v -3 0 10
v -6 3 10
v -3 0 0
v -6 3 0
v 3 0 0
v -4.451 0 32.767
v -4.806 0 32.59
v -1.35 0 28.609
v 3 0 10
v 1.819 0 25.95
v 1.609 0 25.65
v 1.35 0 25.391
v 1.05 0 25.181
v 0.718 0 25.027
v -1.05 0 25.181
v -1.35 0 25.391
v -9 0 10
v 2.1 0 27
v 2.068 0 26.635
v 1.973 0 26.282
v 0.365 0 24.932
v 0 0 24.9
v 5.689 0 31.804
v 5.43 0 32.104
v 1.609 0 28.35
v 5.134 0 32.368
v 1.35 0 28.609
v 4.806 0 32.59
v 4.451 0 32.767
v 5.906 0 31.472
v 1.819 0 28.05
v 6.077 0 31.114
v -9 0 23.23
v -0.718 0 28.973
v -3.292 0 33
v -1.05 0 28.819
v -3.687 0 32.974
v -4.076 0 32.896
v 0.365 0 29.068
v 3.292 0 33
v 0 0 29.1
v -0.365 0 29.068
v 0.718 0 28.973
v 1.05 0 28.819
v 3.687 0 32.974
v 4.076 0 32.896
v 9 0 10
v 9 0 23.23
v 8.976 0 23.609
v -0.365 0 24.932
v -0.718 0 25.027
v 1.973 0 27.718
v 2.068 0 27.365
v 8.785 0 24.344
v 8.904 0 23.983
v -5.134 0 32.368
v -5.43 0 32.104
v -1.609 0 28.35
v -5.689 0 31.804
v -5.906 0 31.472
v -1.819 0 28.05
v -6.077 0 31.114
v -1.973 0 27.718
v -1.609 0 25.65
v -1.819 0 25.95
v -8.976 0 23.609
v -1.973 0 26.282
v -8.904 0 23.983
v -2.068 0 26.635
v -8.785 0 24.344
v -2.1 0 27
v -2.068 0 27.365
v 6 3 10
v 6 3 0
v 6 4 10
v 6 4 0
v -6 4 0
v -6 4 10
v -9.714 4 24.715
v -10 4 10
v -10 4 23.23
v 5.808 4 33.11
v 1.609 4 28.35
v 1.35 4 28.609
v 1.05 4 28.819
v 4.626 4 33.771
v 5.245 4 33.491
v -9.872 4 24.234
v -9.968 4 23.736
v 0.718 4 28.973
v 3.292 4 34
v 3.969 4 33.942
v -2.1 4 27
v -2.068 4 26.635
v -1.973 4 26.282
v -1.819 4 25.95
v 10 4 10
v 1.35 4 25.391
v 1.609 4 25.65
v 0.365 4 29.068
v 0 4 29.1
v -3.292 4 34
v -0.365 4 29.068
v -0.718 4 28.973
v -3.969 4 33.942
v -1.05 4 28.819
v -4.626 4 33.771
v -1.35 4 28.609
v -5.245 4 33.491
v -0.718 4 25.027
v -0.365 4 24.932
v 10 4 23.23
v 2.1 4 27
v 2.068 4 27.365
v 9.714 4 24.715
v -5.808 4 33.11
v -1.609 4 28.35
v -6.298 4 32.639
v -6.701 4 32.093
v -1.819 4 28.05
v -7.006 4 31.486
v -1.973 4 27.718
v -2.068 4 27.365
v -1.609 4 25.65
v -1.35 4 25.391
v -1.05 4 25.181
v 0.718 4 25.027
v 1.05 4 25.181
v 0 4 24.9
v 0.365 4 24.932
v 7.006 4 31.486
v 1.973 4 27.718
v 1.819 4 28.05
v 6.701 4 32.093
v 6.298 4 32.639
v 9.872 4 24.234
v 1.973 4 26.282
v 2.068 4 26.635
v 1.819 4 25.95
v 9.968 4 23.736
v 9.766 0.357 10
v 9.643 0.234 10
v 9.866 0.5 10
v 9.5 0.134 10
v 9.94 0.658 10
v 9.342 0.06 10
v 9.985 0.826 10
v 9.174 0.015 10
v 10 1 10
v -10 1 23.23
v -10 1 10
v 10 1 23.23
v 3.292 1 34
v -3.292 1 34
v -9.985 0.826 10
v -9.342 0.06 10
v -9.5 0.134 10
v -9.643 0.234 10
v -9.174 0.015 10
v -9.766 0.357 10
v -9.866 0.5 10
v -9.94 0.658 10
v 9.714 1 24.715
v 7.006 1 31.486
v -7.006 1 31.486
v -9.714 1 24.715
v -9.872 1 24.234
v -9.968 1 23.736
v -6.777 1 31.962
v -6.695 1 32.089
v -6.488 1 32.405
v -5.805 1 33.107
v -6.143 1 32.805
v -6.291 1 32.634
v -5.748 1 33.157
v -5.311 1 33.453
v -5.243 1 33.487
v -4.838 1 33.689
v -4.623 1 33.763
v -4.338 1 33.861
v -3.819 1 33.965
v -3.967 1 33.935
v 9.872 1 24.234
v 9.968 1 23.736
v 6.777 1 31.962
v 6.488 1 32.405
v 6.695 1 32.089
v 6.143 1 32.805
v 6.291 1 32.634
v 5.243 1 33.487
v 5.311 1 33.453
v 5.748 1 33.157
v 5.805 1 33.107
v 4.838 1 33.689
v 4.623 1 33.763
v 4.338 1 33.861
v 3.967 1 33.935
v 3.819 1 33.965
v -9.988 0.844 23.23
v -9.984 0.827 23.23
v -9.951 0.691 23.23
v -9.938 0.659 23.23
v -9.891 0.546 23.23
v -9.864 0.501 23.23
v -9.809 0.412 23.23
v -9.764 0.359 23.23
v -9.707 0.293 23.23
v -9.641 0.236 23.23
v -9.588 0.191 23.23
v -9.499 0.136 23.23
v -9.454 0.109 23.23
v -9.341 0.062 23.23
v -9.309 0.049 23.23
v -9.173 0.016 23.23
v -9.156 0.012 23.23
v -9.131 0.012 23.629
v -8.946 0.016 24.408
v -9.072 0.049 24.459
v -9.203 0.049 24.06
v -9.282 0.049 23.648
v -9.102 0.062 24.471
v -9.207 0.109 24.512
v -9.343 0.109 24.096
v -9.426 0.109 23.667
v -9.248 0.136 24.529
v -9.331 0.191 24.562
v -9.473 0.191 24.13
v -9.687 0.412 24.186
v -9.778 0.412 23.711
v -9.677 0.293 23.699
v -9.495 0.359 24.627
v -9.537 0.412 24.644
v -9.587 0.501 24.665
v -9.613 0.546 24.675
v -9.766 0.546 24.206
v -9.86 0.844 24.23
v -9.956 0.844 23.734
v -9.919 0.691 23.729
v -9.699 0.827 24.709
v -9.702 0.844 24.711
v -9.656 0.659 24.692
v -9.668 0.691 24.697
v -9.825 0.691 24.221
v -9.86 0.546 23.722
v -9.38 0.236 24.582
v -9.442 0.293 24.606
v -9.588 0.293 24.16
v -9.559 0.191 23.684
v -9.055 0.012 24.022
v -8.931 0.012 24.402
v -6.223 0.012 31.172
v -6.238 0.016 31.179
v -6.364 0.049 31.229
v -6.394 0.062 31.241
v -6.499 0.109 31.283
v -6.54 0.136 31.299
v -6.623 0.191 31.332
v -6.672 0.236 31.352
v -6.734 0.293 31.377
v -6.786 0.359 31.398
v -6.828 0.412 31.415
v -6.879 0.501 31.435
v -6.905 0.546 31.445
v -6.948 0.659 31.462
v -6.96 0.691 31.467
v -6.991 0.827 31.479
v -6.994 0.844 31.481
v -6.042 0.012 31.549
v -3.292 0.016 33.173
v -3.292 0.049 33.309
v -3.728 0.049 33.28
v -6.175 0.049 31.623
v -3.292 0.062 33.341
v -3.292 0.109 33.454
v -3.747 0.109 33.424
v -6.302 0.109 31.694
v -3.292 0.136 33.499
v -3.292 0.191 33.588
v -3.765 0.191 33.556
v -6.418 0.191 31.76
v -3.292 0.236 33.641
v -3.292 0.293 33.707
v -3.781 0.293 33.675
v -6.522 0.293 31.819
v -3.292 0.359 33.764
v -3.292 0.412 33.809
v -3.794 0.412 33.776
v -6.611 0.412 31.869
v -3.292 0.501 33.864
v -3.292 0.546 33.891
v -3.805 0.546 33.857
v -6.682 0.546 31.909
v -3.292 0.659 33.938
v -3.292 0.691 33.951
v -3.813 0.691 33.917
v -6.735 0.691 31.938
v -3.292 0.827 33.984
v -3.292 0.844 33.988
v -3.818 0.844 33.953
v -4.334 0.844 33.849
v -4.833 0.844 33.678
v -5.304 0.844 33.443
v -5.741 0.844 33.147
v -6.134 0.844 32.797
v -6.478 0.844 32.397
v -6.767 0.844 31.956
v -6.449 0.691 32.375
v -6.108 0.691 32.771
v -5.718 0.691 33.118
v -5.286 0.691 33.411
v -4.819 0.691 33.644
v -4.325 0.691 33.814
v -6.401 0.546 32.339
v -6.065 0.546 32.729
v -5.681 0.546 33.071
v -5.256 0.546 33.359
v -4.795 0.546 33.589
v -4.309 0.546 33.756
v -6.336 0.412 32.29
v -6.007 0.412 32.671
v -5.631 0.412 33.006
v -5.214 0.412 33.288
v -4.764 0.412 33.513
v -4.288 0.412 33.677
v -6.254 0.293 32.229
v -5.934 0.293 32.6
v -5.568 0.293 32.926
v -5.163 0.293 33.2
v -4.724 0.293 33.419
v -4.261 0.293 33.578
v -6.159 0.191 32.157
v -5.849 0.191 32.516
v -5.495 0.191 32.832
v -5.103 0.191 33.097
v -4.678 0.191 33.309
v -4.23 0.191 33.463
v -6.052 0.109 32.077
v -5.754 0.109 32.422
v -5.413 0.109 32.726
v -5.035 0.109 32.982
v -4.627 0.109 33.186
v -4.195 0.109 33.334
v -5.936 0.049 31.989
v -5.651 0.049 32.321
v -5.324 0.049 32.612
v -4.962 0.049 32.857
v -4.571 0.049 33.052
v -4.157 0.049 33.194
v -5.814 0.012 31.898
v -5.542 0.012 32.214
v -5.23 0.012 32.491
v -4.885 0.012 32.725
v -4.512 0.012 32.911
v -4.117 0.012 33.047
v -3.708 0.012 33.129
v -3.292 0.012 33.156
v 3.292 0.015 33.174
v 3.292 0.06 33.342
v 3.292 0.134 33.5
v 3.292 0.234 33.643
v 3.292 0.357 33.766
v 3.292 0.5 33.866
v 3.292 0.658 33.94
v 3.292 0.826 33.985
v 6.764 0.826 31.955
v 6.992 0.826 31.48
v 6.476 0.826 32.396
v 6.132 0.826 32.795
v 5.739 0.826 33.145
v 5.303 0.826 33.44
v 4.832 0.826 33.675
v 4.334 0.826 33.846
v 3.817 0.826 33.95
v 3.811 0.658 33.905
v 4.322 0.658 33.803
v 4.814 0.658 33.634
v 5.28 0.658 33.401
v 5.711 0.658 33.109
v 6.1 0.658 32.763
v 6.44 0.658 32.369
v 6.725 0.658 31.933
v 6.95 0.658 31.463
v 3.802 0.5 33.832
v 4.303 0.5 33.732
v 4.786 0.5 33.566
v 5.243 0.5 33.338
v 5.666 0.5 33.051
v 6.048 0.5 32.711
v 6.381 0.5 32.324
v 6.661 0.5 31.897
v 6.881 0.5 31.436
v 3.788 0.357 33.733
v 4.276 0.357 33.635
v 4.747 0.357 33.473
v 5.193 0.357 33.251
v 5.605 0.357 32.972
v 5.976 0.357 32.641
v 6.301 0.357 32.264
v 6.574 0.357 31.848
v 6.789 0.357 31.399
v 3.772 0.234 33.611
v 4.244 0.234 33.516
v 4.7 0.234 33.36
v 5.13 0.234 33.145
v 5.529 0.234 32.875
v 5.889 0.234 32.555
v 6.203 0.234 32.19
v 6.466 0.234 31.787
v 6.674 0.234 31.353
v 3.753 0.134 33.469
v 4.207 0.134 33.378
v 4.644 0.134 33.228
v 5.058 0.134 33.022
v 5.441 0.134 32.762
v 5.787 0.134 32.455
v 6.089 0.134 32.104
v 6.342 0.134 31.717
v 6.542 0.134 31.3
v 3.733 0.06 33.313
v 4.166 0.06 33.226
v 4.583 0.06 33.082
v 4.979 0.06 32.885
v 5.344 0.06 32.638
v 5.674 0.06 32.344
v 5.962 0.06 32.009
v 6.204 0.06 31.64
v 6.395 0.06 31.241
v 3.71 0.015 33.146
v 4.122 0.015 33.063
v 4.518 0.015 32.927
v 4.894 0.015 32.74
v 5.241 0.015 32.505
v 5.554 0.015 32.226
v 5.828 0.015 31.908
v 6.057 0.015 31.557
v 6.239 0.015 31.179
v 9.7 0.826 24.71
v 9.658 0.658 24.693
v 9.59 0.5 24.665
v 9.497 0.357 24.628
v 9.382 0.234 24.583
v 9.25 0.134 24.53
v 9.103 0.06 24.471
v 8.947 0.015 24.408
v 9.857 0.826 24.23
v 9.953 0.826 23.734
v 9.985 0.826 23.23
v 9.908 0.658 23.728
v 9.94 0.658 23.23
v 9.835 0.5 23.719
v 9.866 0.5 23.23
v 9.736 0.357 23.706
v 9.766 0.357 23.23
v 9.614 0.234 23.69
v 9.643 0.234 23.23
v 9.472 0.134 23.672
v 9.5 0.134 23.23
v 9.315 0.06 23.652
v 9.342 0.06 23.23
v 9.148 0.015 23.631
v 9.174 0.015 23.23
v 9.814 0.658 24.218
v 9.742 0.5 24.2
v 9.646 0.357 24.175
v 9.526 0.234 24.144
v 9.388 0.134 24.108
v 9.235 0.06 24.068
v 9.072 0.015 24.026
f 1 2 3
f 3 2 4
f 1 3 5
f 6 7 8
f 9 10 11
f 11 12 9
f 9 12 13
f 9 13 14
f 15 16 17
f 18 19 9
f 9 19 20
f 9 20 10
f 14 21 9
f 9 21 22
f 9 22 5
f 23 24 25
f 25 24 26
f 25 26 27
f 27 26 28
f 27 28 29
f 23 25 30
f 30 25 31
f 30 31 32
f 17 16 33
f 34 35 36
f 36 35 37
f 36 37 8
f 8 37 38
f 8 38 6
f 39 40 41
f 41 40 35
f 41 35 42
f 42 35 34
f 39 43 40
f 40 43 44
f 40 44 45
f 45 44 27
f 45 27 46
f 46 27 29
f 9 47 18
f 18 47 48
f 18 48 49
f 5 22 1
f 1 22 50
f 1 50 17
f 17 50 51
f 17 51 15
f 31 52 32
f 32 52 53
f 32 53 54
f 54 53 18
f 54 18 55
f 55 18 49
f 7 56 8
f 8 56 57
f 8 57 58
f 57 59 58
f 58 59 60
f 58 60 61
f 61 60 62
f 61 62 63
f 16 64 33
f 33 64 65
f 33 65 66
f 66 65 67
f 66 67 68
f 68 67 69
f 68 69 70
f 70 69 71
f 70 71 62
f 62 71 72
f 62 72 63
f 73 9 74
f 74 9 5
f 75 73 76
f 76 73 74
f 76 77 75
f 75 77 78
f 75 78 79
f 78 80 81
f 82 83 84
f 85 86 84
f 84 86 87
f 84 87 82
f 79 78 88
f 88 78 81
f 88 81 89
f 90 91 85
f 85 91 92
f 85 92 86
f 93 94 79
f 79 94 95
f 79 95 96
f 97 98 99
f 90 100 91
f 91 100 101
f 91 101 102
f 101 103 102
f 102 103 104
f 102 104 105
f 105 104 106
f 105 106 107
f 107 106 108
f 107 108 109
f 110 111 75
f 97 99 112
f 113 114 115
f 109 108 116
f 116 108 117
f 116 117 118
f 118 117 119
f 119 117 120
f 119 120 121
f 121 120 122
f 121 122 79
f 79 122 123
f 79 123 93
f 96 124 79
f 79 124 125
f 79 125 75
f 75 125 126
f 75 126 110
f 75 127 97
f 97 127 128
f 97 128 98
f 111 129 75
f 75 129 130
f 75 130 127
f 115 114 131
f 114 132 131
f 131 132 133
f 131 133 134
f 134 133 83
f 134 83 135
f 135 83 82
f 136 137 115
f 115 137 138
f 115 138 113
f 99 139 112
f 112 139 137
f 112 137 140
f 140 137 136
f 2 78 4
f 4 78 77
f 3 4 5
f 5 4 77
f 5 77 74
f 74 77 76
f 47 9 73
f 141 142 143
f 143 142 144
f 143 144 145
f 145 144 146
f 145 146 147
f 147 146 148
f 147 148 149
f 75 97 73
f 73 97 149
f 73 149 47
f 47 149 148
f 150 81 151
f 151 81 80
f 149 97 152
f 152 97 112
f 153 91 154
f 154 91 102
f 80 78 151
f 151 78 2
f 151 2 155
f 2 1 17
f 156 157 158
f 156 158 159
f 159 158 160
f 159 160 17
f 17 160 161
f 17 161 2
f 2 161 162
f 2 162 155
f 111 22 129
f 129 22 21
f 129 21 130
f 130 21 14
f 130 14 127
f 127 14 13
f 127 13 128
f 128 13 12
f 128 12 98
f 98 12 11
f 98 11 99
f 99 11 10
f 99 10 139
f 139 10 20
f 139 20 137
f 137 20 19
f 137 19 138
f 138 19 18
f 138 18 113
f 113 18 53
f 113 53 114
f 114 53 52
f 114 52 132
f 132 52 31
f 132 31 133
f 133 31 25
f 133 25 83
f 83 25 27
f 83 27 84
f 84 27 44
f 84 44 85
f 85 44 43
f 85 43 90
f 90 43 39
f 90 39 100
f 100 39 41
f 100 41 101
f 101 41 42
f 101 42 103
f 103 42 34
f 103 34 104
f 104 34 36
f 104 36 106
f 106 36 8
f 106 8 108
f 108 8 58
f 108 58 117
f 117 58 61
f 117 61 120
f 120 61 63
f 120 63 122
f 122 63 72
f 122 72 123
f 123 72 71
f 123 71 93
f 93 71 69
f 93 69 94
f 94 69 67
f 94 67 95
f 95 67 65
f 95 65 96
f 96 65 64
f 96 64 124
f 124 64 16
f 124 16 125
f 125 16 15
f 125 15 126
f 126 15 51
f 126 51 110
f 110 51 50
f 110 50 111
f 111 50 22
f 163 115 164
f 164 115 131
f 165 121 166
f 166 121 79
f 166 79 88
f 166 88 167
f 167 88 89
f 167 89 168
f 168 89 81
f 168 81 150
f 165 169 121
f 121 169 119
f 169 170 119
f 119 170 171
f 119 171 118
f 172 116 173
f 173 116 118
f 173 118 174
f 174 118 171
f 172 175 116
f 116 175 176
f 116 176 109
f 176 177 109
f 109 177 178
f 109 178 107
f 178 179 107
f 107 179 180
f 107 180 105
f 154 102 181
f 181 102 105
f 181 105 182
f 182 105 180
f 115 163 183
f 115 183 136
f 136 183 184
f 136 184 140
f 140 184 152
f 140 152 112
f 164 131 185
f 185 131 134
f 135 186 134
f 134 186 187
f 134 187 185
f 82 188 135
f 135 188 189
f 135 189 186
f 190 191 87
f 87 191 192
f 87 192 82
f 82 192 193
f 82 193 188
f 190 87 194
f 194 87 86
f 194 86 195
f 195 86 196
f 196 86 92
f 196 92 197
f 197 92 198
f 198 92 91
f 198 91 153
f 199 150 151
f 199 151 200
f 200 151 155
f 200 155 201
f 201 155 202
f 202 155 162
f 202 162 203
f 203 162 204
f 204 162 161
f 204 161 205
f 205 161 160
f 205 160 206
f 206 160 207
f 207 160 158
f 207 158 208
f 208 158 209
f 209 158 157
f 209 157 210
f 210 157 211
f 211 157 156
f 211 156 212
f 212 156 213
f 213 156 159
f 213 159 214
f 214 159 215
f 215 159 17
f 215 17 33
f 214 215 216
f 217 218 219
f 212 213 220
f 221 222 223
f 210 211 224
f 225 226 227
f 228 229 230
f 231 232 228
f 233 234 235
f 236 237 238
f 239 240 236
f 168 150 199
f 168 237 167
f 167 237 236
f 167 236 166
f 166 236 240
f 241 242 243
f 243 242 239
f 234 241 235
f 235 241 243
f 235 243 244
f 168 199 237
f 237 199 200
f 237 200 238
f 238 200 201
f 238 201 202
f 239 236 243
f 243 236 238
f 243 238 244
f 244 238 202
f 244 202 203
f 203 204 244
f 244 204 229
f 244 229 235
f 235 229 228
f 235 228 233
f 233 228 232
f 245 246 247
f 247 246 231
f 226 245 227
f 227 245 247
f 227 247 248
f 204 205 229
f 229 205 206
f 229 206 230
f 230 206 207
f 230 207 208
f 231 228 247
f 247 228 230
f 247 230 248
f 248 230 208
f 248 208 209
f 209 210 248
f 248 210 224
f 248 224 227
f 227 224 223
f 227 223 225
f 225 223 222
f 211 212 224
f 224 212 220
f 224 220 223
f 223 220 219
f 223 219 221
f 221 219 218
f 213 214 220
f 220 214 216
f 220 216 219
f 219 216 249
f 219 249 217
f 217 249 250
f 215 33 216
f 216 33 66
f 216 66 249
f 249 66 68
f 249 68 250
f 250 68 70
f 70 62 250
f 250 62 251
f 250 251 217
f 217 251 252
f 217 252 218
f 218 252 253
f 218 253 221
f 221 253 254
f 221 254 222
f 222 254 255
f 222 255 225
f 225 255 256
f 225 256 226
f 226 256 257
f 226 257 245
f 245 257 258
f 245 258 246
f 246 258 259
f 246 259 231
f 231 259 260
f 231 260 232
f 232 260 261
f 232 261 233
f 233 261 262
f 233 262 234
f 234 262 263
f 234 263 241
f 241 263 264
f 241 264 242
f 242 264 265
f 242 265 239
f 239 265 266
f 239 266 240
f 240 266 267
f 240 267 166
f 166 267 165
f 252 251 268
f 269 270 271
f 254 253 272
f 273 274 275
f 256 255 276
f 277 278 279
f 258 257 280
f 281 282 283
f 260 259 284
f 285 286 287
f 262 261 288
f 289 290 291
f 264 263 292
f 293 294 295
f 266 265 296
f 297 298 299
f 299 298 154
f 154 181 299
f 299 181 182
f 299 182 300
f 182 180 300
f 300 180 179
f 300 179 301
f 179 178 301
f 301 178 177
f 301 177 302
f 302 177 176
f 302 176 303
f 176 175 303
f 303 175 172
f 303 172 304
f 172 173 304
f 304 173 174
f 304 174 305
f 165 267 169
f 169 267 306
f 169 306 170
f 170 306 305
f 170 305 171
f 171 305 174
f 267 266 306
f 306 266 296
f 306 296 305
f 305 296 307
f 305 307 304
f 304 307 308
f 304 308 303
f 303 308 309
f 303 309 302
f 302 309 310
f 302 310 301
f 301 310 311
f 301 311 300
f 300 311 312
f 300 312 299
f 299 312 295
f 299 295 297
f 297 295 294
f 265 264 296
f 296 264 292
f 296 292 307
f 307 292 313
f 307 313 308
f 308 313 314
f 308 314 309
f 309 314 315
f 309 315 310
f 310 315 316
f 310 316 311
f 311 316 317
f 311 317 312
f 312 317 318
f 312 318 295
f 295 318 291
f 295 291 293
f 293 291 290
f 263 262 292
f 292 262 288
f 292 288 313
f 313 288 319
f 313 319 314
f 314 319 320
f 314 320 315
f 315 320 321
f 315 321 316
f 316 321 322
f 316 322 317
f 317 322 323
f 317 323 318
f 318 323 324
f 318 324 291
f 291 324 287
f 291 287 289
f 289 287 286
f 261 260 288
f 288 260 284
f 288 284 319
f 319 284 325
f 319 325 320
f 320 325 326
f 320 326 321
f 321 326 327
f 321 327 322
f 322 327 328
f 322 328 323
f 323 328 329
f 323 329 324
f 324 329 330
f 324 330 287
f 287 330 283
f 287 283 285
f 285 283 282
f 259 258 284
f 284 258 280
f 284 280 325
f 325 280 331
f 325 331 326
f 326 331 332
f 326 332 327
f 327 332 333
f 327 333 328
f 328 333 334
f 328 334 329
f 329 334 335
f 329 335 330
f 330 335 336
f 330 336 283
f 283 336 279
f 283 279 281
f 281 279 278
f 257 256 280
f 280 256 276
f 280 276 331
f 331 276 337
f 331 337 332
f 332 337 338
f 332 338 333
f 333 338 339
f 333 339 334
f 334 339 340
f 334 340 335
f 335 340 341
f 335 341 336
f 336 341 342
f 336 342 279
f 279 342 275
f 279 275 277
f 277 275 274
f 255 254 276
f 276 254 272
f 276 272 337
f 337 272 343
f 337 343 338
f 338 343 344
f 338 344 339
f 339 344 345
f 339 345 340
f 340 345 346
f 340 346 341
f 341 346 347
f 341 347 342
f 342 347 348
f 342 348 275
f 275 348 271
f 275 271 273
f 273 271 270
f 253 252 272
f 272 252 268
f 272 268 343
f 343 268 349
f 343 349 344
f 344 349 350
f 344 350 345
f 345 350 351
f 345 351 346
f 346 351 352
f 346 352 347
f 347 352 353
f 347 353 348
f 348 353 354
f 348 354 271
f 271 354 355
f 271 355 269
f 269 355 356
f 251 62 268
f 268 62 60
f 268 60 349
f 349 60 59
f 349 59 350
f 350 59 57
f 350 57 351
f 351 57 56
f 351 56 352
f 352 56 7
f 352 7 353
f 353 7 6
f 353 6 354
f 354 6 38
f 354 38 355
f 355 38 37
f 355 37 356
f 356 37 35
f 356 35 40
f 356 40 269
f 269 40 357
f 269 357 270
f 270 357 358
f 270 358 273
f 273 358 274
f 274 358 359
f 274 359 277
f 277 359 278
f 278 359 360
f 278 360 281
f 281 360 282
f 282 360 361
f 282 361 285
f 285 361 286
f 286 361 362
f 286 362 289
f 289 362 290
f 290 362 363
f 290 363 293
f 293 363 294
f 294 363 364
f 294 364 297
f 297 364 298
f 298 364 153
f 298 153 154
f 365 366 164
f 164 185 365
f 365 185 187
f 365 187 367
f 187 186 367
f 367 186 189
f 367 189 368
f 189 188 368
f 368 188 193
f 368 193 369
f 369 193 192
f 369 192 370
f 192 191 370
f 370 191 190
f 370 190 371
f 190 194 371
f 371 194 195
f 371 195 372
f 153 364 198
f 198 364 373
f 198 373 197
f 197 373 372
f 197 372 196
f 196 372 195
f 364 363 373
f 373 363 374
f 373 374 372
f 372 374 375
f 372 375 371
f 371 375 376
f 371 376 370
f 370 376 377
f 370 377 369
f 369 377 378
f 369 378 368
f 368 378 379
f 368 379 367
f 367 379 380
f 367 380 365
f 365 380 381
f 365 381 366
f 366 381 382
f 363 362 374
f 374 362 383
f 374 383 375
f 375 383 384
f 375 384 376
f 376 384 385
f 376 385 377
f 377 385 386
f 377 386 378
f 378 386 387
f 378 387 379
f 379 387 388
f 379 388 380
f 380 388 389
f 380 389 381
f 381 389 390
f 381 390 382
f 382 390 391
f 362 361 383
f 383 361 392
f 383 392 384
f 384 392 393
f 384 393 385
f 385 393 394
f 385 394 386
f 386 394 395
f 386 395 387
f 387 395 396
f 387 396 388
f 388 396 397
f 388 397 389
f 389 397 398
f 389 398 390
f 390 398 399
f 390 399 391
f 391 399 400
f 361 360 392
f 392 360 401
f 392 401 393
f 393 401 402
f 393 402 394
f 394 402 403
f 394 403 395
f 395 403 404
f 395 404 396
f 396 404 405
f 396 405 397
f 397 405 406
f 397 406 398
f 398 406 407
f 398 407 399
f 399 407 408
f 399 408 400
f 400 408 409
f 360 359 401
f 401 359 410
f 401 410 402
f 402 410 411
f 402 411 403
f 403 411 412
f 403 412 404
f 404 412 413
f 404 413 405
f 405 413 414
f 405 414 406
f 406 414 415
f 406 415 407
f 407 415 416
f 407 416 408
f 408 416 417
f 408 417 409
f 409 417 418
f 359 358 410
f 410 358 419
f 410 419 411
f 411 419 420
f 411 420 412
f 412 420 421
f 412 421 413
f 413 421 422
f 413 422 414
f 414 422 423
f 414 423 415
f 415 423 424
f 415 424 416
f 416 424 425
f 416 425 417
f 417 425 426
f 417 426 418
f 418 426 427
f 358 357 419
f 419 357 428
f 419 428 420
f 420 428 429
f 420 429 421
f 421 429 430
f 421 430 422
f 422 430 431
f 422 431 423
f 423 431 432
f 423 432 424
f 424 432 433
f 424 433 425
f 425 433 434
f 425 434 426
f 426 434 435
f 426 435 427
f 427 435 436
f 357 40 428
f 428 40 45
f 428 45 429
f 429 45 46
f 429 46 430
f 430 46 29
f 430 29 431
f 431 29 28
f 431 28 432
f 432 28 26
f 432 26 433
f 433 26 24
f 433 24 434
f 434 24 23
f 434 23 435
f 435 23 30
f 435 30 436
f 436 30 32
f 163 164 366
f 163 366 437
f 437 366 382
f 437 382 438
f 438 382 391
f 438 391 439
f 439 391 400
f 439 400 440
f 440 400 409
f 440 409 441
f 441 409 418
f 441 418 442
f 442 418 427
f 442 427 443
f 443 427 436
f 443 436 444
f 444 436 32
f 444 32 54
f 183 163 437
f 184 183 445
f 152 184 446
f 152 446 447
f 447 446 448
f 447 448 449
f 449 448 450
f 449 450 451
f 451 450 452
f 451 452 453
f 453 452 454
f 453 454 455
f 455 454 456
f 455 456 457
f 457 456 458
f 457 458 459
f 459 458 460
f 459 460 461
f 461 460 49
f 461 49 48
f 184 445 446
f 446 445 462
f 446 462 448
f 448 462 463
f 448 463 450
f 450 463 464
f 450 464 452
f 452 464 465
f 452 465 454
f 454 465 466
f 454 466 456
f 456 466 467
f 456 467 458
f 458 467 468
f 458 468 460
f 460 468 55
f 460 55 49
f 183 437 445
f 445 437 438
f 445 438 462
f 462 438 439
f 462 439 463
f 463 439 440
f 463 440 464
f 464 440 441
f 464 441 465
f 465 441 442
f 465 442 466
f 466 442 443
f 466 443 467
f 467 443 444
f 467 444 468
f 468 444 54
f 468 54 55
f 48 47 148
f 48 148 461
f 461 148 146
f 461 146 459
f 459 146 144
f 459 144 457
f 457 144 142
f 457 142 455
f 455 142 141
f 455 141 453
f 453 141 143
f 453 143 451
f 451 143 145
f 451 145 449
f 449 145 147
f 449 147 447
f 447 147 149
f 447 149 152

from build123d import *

# Parameters (mm, degrees)
BOSS_EXTRU_1_DEPTH      = 10
ESQUISSE2_W             = 20
ESQUISSE2_H             = 4
BOSS_EXTRU_2_DEPTH      = 24
ESQUISSE3_R             = 2.1
ENL_V_MAT_EXTRU_1_DEPTH = 5
CHANFREIN1_SIZE         = 10
CHANFREIN1_SIZE2        = 4
CHANFREIN1_PART_2_SIZE  = 10
CHANFREIN1_PART_2_SIZE2 = 4
CONG_1_R                = 4
CONG_2_R                = 1


with BuildPart() as part:
    # Esquisse1 → Boss.-Extru.1 (new body)
    with BuildSketch(Plane.XY):
        Polygon((-3, 0), (3, 0), (6, 3), (6, 4), (-6, 4), (-6, 3), align=None)
    extrude(amount=BOSS_EXTRU_1_DEPTH)

    # Esquisse2 → Boss.-Extru.2 (add)
    with BuildSketch(Plane.XY.offset(10)):
        with Locations((0, 2)):
            Rectangle(ESQUISSE2_W, ESQUISSE2_H)
    extrude(amount=BOSS_EXTRU_2_DEPTH)

    # Esquisse3 → Enlèv. mat.-Extru.1 (cut, through all)
    with BuildSketch(Plane.XZ):
        with Locations((0, 27)):
            Circle(ESQUISSE3_R)
    extrude(amount=-ENL_V_MAT_EXTRU_1_DEPTH, mode=Mode.SUBTRACT)

    # Chanfrein1
    chanfrein1_edges = [part.edges().sort_by_distance(p)[0] for p in [
        (-10, 2, 34),
    ]]
    chanfrein1_side = [part.faces().sort_by_distance(p)[0] for p in [
        (-10, 2, 22),
    ]]
    chamfer(chanfrein1_edges, length=CHANFREIN1_SIZE, length2=CHANFREIN1_SIZE2, reference=chanfrein1_side[0])

    # Chanfrein1 part 2
    chanfrein1_part_2_edges = [part.edges().sort_by_distance(p)[0] for p in [
        (10, 2, 34),
    ]]
    chanfrein1_part_2_side = [part.faces().sort_by_distance(p)[0] for p in [
        (10, 2, 22),
    ]]
    chamfer(chanfrein1_part_2_edges, length=CHANFREIN1_PART_2_SIZE, length2=CHANFREIN1_PART_2_SIZE2, reference=chanfrein1_part_2_side[0])

    # Congé1
    cong_1_edges = [part.edges().sort_by_distance(p)[0] for p in [
        (-6, 2, 34),
        (6, 2, 34),
        (10, 2, 24),
        (-10, 2, 24),
    ]]
    fillet(cong_1_edges, radius=CONG_1_R)

    # Congé2
    cong_2_edges = [part.edges().sort_by_distance(p)[0] for p in [
        (10, 0, 16.614835193),
        (9.927825547, 0, 23.98610047),
        (8.359840841, 0, 28.100397898),
        (5.534383392, 0, 33.312268922),
        (0, 0, 34),
        (-5.534383392, 0, 33.312268922),
        (-8.359840841, 0, 28.100397898),
        (-9.927825547, 0, 23.98610047),
        (-10, 0, 16.614835193),
    ]]
    fillet(cong_2_edges, radius=CONG_2_R)


solid = part.part
